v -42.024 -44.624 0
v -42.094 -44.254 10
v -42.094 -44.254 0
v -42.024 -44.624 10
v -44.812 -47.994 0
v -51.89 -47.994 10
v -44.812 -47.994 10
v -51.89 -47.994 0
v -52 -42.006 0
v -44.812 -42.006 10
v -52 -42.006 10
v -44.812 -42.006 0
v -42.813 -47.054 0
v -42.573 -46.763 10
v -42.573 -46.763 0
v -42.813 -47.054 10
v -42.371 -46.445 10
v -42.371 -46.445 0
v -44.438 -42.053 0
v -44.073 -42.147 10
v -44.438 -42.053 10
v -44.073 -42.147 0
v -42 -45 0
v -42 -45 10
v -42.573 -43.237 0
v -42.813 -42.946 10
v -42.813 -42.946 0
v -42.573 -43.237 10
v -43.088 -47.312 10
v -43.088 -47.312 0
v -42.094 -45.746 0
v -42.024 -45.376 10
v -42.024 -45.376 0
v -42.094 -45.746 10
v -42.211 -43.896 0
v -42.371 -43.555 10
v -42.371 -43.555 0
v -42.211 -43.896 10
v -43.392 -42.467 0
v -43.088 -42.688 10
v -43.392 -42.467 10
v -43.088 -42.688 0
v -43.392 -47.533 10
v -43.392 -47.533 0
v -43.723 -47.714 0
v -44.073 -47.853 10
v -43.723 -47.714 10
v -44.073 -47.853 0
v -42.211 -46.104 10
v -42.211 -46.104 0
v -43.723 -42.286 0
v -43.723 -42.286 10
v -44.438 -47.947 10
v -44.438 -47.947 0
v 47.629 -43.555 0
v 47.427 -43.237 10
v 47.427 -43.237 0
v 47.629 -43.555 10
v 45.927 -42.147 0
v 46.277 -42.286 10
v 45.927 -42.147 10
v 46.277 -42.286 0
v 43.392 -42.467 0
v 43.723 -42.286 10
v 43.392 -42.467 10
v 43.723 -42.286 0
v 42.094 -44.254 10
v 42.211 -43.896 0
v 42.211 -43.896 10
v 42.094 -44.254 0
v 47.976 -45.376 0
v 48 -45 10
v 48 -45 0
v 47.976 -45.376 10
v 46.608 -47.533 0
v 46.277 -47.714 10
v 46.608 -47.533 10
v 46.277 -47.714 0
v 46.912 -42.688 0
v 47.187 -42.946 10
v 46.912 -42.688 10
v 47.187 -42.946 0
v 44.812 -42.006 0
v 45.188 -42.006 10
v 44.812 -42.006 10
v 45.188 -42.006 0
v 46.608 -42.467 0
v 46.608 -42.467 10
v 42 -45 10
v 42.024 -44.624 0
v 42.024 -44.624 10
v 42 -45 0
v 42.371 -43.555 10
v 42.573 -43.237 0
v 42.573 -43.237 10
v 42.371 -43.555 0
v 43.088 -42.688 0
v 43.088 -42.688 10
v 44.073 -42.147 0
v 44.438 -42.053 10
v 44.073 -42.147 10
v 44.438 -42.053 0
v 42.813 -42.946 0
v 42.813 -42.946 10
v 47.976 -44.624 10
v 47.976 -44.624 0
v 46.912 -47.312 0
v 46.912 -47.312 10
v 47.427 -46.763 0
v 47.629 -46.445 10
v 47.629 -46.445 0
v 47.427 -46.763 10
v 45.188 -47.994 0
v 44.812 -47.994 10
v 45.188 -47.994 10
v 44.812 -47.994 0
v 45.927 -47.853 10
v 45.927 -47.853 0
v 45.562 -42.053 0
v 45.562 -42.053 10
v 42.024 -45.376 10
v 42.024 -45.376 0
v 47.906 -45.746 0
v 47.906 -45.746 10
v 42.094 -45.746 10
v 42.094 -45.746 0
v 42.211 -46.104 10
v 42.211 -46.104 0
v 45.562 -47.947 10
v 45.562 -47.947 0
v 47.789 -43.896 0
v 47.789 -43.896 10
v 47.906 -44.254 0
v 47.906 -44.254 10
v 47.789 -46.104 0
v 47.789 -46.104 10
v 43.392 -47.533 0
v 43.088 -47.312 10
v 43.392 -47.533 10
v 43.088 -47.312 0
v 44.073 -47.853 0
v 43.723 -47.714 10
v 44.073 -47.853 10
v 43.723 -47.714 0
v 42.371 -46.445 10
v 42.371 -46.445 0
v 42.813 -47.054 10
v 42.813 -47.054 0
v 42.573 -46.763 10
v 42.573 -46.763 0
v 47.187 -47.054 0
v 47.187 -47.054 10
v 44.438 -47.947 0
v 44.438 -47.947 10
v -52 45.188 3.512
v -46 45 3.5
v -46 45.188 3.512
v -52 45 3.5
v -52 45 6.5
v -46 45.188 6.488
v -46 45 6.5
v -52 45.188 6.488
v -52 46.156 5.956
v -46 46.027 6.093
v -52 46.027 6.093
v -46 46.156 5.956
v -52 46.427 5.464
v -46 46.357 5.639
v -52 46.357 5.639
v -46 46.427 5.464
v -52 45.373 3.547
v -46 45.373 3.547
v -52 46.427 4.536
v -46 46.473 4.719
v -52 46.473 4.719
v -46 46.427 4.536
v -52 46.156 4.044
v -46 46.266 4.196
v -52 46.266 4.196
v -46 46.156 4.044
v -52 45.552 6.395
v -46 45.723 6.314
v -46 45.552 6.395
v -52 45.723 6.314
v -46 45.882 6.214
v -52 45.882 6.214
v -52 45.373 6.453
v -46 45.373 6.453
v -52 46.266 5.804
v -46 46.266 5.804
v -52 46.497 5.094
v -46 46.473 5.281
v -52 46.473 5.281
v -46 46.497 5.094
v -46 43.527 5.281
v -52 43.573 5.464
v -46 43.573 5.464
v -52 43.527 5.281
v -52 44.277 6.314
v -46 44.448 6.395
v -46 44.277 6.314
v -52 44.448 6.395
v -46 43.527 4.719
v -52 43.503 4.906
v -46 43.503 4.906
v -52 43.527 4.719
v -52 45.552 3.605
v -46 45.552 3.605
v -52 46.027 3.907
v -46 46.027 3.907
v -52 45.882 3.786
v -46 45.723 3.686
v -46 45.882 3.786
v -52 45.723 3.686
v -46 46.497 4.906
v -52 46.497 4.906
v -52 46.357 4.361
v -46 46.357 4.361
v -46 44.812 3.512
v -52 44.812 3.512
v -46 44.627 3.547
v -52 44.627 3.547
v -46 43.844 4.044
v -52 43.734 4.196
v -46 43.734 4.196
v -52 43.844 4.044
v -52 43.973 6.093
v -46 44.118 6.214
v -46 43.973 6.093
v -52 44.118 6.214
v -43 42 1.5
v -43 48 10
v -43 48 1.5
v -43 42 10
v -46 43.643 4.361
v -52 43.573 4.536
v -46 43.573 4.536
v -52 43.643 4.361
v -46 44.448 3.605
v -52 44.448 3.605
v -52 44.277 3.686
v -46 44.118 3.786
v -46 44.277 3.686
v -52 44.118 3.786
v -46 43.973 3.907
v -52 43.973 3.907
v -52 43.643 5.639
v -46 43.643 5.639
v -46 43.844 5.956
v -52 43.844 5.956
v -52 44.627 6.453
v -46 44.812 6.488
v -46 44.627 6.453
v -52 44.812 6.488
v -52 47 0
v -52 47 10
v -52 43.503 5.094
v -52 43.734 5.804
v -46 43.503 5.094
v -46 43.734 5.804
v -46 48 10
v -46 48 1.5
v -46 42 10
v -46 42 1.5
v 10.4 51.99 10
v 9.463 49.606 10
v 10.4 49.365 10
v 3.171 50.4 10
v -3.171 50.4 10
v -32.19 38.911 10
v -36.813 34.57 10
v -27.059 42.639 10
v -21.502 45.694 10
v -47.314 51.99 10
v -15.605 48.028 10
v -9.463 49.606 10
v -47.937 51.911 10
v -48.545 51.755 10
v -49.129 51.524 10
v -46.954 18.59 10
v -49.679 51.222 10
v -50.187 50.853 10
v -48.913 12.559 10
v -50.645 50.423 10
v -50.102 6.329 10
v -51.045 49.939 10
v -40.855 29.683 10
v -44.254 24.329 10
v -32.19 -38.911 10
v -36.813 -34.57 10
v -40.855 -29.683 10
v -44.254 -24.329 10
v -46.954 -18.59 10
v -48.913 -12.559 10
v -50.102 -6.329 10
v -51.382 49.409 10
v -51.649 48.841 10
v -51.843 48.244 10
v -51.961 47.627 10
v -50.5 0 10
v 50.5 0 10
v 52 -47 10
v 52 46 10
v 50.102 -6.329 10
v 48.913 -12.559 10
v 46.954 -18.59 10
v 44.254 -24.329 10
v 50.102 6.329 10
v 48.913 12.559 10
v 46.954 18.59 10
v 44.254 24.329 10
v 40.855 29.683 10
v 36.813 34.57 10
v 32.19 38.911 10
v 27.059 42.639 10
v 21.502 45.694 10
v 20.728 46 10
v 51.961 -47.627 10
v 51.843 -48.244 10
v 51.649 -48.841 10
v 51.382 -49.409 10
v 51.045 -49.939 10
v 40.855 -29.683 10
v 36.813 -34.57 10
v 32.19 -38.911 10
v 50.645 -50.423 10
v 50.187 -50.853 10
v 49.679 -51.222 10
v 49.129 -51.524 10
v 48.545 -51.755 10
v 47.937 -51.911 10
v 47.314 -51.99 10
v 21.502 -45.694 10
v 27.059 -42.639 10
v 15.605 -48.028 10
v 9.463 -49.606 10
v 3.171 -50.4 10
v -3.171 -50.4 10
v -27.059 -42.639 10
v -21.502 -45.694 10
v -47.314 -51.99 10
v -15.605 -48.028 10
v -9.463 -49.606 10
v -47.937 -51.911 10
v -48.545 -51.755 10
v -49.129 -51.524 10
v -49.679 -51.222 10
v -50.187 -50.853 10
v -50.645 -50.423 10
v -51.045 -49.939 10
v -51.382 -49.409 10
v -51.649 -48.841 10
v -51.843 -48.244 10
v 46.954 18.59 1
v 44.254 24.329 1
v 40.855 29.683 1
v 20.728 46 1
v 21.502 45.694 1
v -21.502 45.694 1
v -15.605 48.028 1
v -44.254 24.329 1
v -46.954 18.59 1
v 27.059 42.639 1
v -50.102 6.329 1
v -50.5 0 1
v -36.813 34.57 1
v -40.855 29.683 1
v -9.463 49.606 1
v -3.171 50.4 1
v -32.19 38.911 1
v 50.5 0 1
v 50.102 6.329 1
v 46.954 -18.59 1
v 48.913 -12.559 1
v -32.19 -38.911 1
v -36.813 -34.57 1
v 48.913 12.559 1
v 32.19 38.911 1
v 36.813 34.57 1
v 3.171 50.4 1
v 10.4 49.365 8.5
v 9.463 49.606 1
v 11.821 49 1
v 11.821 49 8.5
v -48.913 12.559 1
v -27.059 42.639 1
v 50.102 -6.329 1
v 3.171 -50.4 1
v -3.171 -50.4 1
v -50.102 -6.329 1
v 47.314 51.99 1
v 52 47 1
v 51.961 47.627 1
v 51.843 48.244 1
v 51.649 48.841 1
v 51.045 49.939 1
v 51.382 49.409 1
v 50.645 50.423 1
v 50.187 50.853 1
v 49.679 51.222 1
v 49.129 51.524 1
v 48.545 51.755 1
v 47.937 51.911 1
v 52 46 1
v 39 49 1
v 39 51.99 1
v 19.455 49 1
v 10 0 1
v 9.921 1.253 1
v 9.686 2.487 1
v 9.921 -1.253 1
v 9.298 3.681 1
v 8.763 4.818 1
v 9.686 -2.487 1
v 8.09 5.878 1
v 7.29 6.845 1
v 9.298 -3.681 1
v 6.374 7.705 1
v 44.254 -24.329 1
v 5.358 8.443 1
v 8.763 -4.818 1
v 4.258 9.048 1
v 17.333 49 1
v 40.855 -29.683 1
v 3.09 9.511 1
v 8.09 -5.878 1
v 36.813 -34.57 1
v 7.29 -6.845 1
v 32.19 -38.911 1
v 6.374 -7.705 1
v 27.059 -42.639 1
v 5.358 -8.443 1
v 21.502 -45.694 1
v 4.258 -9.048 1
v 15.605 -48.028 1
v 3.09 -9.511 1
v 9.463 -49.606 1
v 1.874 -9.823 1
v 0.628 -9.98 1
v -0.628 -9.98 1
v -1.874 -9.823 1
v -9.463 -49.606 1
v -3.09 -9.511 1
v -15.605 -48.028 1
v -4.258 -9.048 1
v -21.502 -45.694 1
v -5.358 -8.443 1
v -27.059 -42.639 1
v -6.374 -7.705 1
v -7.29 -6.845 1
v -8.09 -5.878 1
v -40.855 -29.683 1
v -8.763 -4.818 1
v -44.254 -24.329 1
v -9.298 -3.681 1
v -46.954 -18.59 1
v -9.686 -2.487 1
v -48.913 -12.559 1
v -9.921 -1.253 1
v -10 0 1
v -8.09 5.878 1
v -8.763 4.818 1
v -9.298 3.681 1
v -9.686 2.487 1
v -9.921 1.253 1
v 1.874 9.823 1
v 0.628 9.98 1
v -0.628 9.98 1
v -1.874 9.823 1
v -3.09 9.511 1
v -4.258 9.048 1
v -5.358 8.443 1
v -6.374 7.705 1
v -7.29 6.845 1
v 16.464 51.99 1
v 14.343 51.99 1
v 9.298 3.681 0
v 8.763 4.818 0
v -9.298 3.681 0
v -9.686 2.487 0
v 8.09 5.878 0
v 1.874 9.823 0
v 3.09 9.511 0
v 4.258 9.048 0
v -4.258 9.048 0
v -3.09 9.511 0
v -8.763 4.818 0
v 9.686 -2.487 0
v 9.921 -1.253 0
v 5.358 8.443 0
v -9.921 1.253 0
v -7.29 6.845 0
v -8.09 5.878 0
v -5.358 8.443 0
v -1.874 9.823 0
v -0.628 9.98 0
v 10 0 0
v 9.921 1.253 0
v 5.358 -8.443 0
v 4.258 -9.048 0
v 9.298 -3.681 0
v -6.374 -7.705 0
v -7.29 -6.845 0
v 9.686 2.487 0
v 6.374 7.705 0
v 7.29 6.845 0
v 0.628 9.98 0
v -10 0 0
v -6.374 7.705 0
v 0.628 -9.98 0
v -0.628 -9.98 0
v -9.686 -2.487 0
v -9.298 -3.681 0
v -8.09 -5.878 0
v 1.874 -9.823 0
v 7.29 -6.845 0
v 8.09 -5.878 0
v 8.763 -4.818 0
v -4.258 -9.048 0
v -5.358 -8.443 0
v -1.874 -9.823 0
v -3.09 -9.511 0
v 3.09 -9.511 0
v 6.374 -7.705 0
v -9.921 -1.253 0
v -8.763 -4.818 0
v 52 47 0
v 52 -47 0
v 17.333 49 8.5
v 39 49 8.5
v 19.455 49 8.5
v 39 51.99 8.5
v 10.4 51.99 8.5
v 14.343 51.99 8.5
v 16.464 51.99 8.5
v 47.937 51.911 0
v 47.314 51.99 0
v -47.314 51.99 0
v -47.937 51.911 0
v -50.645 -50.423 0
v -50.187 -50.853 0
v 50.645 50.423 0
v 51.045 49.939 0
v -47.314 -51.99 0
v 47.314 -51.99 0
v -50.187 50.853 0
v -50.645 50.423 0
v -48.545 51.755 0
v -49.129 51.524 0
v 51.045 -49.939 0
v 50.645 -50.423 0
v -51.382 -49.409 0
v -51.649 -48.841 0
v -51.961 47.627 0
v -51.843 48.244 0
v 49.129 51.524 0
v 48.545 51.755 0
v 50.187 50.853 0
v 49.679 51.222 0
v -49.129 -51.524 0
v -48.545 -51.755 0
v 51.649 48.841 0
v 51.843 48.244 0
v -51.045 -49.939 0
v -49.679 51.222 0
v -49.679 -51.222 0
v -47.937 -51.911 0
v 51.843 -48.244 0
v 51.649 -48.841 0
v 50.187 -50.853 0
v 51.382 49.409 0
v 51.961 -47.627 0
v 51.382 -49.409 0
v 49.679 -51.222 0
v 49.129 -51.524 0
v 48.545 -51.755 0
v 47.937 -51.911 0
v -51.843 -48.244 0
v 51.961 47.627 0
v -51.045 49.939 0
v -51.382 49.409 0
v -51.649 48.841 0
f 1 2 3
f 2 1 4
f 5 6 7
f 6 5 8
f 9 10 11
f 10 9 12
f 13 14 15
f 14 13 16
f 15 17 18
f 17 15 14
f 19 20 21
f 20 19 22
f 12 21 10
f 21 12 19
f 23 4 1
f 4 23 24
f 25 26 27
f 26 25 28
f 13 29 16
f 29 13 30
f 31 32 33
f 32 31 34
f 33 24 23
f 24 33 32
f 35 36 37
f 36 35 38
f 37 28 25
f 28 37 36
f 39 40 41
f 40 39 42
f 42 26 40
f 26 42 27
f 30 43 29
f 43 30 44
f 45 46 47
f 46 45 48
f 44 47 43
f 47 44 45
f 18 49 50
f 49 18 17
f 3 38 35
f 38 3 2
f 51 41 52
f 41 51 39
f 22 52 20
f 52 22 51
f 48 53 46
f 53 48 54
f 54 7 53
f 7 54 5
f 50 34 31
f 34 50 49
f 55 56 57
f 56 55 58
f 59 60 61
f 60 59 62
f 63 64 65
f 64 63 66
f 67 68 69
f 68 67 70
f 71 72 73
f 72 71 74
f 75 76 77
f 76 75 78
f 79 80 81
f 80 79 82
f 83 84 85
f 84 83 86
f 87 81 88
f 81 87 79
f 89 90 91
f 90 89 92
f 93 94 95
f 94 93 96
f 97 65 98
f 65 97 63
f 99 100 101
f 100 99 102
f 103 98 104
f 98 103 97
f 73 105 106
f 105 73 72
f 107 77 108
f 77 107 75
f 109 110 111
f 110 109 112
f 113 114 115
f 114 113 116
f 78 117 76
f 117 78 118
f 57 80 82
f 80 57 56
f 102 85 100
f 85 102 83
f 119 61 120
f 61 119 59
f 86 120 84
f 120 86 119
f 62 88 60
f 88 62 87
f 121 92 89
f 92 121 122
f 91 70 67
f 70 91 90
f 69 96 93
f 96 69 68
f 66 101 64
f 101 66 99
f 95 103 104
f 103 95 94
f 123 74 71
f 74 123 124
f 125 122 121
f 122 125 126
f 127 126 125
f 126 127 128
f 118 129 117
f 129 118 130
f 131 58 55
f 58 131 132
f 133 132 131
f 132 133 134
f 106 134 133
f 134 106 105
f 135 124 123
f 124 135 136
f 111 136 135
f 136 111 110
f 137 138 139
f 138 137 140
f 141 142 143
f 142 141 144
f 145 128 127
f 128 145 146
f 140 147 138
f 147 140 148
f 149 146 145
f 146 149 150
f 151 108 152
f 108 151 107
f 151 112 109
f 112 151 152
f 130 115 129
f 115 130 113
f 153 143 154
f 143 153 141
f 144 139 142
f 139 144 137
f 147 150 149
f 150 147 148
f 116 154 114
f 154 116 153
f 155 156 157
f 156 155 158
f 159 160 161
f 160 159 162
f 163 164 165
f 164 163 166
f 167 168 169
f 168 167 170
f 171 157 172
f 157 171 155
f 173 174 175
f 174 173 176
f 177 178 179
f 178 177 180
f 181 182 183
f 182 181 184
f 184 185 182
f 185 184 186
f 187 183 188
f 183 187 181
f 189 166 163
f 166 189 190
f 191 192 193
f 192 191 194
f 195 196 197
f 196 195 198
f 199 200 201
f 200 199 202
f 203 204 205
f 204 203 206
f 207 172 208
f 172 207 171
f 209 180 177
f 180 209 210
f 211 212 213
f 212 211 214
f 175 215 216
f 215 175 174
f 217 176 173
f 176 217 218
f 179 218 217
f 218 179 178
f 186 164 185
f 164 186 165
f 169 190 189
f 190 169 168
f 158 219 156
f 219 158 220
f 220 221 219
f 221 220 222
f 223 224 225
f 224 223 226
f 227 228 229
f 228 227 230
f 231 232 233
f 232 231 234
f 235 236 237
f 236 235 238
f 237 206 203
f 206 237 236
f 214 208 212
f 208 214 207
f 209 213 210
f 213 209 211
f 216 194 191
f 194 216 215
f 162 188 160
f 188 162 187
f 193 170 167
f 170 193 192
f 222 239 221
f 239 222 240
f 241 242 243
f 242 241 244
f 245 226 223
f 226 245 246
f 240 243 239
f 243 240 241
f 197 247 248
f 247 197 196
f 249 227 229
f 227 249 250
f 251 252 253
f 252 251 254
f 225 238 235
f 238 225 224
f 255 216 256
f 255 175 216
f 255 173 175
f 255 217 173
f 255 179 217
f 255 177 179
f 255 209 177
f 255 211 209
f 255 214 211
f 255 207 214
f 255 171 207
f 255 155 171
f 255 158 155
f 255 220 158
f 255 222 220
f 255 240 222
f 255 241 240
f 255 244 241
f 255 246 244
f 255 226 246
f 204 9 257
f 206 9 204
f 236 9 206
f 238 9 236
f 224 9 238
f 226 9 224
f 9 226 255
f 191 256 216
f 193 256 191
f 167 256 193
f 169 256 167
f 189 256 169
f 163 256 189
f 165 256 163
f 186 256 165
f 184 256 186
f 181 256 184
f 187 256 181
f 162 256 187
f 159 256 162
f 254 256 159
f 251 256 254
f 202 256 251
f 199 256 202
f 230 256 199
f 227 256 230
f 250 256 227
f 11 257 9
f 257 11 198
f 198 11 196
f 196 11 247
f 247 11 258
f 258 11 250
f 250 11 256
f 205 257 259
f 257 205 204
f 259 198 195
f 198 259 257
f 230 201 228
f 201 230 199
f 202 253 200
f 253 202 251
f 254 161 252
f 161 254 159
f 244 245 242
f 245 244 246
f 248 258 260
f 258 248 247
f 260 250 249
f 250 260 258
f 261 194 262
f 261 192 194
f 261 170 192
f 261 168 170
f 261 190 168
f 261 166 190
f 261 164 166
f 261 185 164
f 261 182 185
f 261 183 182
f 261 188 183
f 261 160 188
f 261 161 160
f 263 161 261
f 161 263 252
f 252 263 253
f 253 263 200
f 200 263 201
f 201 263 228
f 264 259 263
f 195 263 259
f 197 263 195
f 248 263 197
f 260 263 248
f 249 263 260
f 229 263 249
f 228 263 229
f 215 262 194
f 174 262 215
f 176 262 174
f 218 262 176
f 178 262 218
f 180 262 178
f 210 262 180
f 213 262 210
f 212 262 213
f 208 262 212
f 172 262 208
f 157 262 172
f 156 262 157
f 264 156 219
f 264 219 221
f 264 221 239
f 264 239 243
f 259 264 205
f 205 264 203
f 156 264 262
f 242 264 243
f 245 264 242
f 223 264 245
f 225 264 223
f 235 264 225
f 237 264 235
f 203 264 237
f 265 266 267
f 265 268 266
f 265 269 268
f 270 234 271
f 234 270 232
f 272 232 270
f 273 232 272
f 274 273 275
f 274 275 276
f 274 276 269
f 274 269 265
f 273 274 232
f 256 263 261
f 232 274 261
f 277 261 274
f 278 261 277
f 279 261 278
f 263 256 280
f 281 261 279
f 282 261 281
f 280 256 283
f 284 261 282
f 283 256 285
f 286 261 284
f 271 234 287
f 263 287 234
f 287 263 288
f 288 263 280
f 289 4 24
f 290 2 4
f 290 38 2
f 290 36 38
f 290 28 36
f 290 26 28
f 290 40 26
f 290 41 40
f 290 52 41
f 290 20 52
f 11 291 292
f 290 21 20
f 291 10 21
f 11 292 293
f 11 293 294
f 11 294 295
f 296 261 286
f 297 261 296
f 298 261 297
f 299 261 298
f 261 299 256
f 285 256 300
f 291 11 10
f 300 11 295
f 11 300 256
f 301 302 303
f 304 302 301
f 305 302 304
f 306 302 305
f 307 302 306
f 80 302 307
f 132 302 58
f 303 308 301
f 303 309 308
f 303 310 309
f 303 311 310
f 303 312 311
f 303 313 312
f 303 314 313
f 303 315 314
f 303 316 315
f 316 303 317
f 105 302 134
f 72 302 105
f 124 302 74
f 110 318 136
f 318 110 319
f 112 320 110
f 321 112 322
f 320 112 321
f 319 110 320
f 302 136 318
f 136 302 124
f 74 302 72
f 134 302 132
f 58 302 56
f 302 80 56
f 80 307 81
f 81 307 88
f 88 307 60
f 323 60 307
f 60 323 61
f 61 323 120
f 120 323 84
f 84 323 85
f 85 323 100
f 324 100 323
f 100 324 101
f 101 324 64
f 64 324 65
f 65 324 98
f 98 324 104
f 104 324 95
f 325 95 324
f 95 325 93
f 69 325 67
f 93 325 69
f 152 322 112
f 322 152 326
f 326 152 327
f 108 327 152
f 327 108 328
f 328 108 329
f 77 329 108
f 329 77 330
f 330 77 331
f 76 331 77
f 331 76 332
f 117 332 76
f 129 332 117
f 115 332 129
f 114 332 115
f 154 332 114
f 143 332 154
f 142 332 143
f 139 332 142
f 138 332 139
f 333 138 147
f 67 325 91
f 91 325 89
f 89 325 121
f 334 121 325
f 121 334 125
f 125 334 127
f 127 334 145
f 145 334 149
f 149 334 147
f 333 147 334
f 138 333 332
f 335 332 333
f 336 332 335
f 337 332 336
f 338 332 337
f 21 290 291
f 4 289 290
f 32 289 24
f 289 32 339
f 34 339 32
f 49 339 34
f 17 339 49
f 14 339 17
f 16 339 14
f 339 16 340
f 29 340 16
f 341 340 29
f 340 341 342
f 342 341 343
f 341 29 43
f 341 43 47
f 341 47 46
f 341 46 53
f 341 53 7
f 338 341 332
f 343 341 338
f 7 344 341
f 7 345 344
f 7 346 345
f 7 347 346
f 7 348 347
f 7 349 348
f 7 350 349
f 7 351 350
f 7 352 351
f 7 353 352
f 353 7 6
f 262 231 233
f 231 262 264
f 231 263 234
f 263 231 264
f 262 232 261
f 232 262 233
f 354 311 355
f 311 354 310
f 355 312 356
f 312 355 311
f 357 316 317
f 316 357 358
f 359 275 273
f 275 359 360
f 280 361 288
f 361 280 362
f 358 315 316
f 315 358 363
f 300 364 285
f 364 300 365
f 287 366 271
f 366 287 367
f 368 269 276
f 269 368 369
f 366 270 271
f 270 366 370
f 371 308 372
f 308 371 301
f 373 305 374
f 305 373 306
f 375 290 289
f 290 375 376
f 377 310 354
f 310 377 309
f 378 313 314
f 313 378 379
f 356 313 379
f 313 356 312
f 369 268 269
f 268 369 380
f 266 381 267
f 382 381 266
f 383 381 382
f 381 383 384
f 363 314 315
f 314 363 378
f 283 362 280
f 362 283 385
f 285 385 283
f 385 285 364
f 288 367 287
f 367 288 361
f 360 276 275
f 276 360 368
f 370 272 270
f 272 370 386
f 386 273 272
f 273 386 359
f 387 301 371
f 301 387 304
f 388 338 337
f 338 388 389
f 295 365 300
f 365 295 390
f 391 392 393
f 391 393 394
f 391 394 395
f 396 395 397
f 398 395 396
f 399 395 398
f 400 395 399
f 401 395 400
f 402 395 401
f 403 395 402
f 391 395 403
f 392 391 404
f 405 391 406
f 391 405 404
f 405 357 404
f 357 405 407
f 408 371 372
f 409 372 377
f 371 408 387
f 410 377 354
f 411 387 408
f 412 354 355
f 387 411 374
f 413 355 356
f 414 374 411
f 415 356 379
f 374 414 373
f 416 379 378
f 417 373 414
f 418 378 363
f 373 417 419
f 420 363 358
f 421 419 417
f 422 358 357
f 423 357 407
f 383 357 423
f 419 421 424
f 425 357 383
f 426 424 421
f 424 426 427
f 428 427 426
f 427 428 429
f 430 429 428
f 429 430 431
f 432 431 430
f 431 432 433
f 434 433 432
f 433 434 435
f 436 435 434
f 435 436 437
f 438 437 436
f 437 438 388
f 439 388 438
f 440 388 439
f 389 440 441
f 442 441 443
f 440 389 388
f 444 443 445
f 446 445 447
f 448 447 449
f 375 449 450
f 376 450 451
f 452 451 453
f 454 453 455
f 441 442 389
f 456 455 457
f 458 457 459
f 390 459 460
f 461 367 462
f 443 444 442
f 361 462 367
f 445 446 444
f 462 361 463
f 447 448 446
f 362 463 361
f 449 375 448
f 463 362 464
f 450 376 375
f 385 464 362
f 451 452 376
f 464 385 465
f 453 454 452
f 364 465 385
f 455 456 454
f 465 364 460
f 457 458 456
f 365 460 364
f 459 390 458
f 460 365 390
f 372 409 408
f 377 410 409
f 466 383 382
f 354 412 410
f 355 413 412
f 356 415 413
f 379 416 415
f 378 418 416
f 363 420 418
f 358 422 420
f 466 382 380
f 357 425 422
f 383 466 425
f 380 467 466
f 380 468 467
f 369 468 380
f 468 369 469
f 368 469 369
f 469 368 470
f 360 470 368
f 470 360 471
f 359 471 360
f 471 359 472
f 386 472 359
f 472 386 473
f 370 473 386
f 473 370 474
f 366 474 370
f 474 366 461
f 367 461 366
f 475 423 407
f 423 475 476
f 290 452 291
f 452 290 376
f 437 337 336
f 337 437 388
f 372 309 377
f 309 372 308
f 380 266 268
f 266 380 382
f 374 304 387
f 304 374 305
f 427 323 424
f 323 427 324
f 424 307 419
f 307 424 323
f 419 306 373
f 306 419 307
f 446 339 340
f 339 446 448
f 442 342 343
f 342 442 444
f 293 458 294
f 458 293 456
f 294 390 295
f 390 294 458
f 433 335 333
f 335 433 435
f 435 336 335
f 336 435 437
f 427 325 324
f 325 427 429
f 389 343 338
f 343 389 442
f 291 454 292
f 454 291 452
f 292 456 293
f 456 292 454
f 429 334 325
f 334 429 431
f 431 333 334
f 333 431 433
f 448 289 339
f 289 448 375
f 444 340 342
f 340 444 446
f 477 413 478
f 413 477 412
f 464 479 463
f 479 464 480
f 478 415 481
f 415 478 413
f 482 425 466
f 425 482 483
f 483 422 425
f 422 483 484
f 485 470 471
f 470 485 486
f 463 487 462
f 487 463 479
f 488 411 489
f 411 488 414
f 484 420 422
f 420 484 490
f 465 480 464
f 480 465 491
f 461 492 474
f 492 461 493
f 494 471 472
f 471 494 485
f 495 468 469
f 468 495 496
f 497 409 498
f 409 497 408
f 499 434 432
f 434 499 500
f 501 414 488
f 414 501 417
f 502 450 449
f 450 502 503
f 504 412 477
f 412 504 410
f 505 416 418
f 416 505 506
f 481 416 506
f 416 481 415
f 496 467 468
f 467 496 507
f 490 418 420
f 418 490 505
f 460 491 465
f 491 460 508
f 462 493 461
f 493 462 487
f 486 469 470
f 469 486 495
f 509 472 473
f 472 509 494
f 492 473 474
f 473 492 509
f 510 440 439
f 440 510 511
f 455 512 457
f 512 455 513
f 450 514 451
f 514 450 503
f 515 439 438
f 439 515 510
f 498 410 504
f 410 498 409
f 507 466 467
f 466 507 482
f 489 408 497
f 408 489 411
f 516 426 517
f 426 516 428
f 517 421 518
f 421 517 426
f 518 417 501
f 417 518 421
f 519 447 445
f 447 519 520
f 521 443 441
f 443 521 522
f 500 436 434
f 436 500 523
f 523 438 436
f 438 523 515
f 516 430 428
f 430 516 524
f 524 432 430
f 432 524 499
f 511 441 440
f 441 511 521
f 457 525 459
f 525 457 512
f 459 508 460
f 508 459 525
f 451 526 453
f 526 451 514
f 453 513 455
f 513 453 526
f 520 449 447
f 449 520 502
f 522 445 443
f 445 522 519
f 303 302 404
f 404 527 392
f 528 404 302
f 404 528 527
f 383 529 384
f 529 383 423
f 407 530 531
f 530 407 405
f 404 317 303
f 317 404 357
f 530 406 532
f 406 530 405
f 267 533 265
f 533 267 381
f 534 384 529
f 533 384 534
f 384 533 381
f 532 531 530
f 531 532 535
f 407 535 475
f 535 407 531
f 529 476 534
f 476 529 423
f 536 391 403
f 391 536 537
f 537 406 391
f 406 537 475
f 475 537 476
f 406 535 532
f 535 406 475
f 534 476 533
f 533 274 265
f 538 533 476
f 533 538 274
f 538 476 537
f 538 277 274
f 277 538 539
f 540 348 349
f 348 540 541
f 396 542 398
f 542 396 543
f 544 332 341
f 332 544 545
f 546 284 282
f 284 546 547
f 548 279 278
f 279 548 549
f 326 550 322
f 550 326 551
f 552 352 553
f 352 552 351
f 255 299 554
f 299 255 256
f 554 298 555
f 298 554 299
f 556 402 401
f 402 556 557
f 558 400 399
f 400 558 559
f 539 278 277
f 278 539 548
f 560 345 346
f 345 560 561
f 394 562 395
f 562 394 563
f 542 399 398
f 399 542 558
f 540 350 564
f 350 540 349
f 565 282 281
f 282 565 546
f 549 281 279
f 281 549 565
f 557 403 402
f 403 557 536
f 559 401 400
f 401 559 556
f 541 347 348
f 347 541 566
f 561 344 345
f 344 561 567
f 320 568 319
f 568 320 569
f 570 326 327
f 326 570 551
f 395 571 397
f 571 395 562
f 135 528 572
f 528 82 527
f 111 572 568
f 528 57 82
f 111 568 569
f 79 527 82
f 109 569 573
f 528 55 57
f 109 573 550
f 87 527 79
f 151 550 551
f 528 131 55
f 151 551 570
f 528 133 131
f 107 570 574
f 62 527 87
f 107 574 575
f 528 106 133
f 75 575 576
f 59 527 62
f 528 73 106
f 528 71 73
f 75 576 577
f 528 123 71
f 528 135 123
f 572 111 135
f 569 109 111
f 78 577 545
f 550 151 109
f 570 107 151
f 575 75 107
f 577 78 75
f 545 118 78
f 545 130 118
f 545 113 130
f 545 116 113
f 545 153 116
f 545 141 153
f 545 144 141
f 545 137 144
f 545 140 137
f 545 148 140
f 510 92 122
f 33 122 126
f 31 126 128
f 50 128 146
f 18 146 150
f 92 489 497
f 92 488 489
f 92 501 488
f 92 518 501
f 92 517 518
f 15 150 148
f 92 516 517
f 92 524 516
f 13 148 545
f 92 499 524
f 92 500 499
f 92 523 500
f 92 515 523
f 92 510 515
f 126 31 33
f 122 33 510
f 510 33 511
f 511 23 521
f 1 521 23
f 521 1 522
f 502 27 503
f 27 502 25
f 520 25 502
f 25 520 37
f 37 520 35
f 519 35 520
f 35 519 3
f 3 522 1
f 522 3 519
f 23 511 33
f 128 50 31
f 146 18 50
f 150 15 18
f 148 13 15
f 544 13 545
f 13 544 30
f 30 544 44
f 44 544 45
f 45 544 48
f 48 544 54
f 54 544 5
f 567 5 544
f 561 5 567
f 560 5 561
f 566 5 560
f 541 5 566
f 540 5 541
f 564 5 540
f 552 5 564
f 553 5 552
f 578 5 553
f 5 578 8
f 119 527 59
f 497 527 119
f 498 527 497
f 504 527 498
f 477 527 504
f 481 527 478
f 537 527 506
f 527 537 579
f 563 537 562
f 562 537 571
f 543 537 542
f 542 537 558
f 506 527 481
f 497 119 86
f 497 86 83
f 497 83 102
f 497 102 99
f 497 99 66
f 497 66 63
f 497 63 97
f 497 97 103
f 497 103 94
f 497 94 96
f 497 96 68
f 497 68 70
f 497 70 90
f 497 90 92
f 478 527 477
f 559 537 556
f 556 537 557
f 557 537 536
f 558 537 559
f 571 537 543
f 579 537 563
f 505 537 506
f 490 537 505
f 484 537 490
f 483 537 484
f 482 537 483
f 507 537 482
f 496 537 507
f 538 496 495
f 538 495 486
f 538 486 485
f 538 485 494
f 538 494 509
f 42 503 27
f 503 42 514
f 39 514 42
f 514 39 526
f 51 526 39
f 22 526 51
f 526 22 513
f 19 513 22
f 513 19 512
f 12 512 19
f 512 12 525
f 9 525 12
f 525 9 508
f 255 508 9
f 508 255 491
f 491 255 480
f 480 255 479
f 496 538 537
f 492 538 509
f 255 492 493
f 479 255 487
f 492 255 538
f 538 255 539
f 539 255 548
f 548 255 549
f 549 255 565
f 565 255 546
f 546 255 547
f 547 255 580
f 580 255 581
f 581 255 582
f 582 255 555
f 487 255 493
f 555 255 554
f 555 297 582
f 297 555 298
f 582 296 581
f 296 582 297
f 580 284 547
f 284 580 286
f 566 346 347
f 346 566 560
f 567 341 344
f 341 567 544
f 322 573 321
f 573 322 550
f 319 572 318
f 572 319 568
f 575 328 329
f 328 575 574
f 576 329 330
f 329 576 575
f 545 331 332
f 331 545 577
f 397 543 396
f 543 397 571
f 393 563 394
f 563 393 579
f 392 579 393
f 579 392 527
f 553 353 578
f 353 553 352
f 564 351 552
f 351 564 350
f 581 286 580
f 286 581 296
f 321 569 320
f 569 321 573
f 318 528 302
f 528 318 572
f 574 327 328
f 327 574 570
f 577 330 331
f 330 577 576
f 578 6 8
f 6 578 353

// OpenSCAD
$fn = 50;


difference() {
	union() {
		translate(v = [0, 0, 0]) {
			rotate(a = [0, 0, 0]) {
				hull() {
					translate(v = [-47.0000000000, 47.0000000000, 0]) {
						rotate(a = [0, 0, 0]) {
							translate(v = [0, 0, 0]) {
								rotate(a = [0, 0, 0]) {
									cylinder(h = 10, r = 5);
								}
							}
						}
					}
					translate(v = [47.0000000000, 47.0000000000, 0]) {
						rotate(a = [0, 0, 0]) {
							translate(v = [0, 0, 0]) {
								rotate(a = [0, 0, 0]) {
									cylinder(h = 10, r = 5);
								}
							}
						}
					}
					translate(v = [-47.0000000000, -47.0000000000, 0]) {
						rotate(a = [0, 0, 0]) {
							translate(v = [0, 0, 0]) {
								rotate(a = [0, 0, 0]) {
									cylinder(h = 10, r = 5);
								}
							}
						}
					}
					translate(v = [47.0000000000, -47.0000000000, 0]) {
						rotate(a = [0, 0, 0]) {
							translate(v = [0, 0, 0]) {
								rotate(a = [0, 0, 0]) {
									cylinder(h = 10, r = 5);
								}
							}
						}
					}
				}
			}
		}
	}
	union() {
		translate(v = [-52.5000000000, -45.0000000000, -125]) {
			rotate(a = [0, 0, 0]) {
				hull() {
					translate(v = [7.5000000000, 0, 0]) {
						rotate(a = [0, 0, 0]) {
							translate(v = [0, 0, 0]) {
								rotate(a = [0, 0, 0]) {
									cylinder(h = 250, r = 3.0000000000);
								}
							}
						}
					}
					translate(v = [-7.5000000000, 0, 0]) {
						rotate(a = [0, 0, 0]) {
							translate(v = [0, 0, 0]) {
								rotate(a = [0, 0, 0]) {
									cylinder(h = 250, r = 3.0000000000);
								}
							}
						}
					}
				}
			}
		}
		translate(v = [45.0000000000, -45.0000000000, -125.0000000000]) {
			rotate(a = [0, 0, 0]) {
				cylinder(h = 250, r = 3.0000000000);
			}
		}
		translate(v = [-52.0000000000, 45.0000000000, 5.0000000000]) {
			rotate(a = [0, 90, 0]) {
				cylinder(h = 9, r = 1.5000000000);
			}
		}
		translate(v = [-46.0000000000, 42.0000000000, 1.5000000000]) {
			rotate(a = [0, 0, 0]) {
				cube(size = [3, 6, 8.5000000000]);
			}
		}
		translate(v = [0, 0, 1.0000000000]) {
			rotate(a = [0, 0, 0]) {
				cylinder(h = 12, r = 50.5000000000);
			}
		}
		translate(v = [0, 0, -5.0000000000]) {
			rotate(a = [0, 0, 0]) {
				cylinder(h = 10, r = 10.0000000000);
			}
		}
		translate(v = [0.0000000000, 46.0000000000, 1]) {
			rotate(a = [0, 0, 0]) {
				cube(size = [52.0000000000, 3, 12]);
			}
		}
		translate(v = [39.0000000000, 46.0000000000, 1]) {
			rotate(a = [0, 0, 0]) {
				cube(size = [13.0000000000, 6, 12]);
			}
		}
		translate(v = [10.4000000000, 46.0000000000, 8.5000000000]) {
			rotate(a = [0, 0, 0]) {
				cube(size = [41.6000000000, 6, 1.5000000000]);
			}
		}
		translate(v = [13.5833333333, 52.7500000000, 1]) {
			rotate(a = [0, 0, -45]) {
				cube(size = [7.5000000000, 1.5000000000, 12]);
			}
		}
	}
}
